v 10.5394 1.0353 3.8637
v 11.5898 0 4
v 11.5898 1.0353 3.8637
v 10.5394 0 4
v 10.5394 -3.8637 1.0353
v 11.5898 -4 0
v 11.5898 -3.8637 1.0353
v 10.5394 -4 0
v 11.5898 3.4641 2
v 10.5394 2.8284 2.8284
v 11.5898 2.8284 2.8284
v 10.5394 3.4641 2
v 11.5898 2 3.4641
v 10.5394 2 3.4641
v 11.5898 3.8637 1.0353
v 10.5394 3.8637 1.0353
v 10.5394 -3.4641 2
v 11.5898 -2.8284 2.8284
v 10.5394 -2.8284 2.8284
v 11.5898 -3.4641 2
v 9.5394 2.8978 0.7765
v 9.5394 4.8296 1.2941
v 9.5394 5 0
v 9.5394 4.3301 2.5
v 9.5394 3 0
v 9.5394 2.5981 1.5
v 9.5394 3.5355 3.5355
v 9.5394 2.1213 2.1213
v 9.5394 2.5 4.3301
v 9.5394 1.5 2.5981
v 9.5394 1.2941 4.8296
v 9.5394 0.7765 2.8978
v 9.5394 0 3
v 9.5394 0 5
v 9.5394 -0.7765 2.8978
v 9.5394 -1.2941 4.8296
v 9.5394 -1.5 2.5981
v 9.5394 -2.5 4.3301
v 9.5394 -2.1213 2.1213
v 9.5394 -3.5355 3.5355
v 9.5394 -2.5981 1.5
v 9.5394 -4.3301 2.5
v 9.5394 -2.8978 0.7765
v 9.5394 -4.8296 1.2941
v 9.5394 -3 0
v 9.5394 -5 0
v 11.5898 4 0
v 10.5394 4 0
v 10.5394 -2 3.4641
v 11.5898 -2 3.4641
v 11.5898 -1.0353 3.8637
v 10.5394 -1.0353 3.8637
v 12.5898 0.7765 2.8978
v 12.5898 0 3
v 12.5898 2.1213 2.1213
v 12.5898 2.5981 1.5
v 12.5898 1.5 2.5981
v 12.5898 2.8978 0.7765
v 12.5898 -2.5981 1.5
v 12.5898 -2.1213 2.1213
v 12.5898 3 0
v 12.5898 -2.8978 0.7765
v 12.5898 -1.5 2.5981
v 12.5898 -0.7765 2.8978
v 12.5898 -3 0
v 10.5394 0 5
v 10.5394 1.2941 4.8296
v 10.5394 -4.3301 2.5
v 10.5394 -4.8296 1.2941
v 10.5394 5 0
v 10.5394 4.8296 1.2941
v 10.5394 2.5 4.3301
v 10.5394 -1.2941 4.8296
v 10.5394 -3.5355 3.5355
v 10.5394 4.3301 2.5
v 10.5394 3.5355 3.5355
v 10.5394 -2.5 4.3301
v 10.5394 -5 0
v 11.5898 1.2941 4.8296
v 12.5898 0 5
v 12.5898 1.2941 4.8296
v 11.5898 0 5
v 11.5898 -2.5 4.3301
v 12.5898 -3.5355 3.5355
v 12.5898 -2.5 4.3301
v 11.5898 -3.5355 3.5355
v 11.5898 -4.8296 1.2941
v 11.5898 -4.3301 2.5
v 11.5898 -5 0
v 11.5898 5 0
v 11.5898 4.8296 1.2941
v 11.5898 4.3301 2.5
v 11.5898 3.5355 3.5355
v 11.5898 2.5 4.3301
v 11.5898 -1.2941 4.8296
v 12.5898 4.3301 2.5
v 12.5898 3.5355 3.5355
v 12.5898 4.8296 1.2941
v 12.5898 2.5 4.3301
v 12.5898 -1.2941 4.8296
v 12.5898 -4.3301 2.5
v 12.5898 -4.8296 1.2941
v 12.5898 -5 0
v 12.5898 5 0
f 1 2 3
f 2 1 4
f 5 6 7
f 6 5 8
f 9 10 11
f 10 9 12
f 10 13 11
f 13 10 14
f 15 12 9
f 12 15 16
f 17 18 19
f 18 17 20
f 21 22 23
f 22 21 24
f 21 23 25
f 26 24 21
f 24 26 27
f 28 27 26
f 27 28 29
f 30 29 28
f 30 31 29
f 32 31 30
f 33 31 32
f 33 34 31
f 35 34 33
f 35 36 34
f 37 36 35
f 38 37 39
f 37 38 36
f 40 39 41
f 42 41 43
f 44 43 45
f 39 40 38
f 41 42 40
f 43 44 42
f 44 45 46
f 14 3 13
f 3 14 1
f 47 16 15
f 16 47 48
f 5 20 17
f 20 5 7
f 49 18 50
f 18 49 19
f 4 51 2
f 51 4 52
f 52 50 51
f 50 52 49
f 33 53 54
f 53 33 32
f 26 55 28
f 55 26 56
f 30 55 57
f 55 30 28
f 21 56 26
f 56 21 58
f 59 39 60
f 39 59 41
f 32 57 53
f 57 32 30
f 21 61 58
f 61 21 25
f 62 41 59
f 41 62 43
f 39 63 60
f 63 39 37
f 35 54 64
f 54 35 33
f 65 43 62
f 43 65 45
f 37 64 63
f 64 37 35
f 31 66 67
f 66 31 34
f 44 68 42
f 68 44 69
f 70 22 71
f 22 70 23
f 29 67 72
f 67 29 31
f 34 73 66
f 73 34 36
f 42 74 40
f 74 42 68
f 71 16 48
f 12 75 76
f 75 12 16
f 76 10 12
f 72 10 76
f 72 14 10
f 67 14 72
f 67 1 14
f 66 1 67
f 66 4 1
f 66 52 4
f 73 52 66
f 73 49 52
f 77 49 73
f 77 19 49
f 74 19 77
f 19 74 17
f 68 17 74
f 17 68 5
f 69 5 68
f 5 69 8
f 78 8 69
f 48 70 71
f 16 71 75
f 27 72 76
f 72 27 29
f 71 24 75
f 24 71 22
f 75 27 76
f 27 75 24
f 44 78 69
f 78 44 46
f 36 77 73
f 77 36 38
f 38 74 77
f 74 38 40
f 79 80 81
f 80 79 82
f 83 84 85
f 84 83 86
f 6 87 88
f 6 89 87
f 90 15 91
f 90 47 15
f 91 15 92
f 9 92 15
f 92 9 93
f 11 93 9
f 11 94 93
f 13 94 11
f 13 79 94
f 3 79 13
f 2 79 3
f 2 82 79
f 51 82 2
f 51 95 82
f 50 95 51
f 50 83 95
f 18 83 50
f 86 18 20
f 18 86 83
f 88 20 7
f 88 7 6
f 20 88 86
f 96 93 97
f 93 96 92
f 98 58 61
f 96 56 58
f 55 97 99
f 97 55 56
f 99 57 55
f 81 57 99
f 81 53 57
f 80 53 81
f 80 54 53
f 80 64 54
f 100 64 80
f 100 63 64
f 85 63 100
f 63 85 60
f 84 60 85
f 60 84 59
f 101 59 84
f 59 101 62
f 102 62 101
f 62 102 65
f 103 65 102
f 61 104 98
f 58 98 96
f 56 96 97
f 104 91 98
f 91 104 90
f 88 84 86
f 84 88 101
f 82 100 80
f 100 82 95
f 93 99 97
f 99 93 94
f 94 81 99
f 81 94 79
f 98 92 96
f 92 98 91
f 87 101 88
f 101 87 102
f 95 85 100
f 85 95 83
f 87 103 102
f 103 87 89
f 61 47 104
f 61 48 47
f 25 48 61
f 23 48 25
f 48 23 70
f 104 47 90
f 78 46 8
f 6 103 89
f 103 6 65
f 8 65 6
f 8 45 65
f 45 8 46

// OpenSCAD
// file: ../build_environments.scad
// build_environments.scad: modules to build level sections
//

module pool(diameter=10.0, wall_height=2.0, step_width=3.0, connections=[])
{
    difference() {
        union() {
        difference() {
            cylinder(h=0.5,r1=diameter+step_width,r2=diameter+step_width,$fn=48);
            translate([0,0,-0.1])
                cylinder(h=0.7,r1=diameter,r2=diameter,$fn=48);
        }
        difference() {
            cylinder(h=wall_height,r1=diameter+step_width+1.0,r2=diameter+step_width+1.0,$fn=48);
            translate([0,0,-0.1])
                cylinder(h=wall_height+0.2,r1=diameter+step_width,r2=diameter+step_width,$fn=48);
        }
        }
    
        for (c = connections)
        {
            rotate([0,90,0]) {
                angle = atan2(c[1],c[0]);
                rotate([-angle,0,0]) {
                    cylinder(h=diameter+5.0,r1=c[2],r2=c[2],$fn=48);
                }
            }
        }
    }
}

module straight(length=10.0, width=2.0, dy1=0.0, dy2=0.0, dz=0.0)
{
    dims = [0, 0, 0, 0, 0, (dz/length)];
    matrix = [
        [ 1, dims[0], dims[1], 0 ],
        [ dims[2], 1, dims[4], 0 ],
        [ dims[5], dims[3], 1, 0 ],
        [ 0, 0, 0, 1 ]
    ];
    multmatrix(matrix)
    difference() {
        translate([dy1,0,0])
        union() {
            rotate([0,90,0]) {
                difference() {
                    cylinder(h=(length-dy1-dy2),r1=width+1.0,r2=width+1.0,$fn=24);
                    translate([0,0,-0.1])
                        cylinder(h=(length-dy1-dy2+0.2),r1=width,r2=width,$fn=24);
                }
                difference() {
                    cylinder(h=1.0,r1=width+2.0,r2=width+2.0,$fn=24);
                    translate([0,0,-0.1])
                        cylinder(h=1.2,r1=width,r2=width,$fn=24);
                }
                translate([0,0,(length-dy1-dy2)-1.0]) {
                    difference() {
                        cylinder(h=1.0,r1=width+2.0,r2=width+2.0,$fn=24);
                        translate([0,0,-0.1])
                            cylinder(h=1.2,r1=width,r2=width,$fn=24);
                    }
                }
            }
        }
        translate([0,0,-(2*width+4.0)/2])
            cube([3*length,3*length,2*width+4.0],center=true);
    }
}

module curve(p0=[0,0], center=[0,0], dir=1, angle=0.0, width=2.0)
{
    radius = sqrt((p0[0]-center[0])*(p0[0]-center[0]) + (p0[1]-center[1])*(p0[1]-center[1]));
    if (dir == 0) {
        difference() {
            rotate([0,0,-90])
            difference() {
                rotate_extrude(angle = angle, convexity = 10, $fn=32)
                    translate([radius, 0, 0])
                        circle(r = width+1.0,$fn=24);
                rotate([0,0,-1.0])
                    rotate_extrude(angle = angle+2.0, convexity = 10, $fn=32)
                        translate([radius, 0, 0])
                            circle(r = width,$fn=24);
            }
            translate([0,0,-(2*width+4.0)/2])
                cube([5*radius,5*radius,2*width+4.0],center=true);
        }
    }
    else {
        difference() {
            rotate([0,0,90])
            difference() {
                rotate_extrude(angle = -angle, convexity = 10, $fn=32)
                    translate([radius, 0, 0])
                        circle(r = width+1.0,$fn=24);
                rotate([0,0,1.0])
                    rotate_extrude(angle = -angle-2.0, convexity = 10, $fn=32)
                        translate([radius, 0, 0])
                            circle(r = width,$fn=24);
            }
            translate([0,0,-(2*width+4.0)/2])
                cube([5*radius,5*radius,2*width+4.0],center=true);
        }
    }

}

// test pool
//pool(diameter=12.0000, wall_height=3.0000, step_width=3.0000, connections=[[0.0000,-26.0000,2.0000], [23.6074,0.0000,2.0000]]);

// test straight, slope
//straight(length=26.0000, width=2.0000, dy1=11.8322, dy2=6.7082, dz=0.0000);
//straight(length=29.1549, width=12.0000, dy1=0.0000, dy2=0.0000, dz=-15.0000);

// test curve
//curve(p0=[23.6074, 0.0000], center=[23.6074, 5.0000], dir=0, angle=60.1011, width=2.0000);
//curve(p0=[33.6426, 12.4219], center=[37.9771, 9.9295], dir=1, angle=120.4627, width=2.0000);
// main file
use <../build_environments.scad>;
straight(length=12.5898, width=3.0000, dy1=9.5394, dy2=0.0000, dz=0.0000);
